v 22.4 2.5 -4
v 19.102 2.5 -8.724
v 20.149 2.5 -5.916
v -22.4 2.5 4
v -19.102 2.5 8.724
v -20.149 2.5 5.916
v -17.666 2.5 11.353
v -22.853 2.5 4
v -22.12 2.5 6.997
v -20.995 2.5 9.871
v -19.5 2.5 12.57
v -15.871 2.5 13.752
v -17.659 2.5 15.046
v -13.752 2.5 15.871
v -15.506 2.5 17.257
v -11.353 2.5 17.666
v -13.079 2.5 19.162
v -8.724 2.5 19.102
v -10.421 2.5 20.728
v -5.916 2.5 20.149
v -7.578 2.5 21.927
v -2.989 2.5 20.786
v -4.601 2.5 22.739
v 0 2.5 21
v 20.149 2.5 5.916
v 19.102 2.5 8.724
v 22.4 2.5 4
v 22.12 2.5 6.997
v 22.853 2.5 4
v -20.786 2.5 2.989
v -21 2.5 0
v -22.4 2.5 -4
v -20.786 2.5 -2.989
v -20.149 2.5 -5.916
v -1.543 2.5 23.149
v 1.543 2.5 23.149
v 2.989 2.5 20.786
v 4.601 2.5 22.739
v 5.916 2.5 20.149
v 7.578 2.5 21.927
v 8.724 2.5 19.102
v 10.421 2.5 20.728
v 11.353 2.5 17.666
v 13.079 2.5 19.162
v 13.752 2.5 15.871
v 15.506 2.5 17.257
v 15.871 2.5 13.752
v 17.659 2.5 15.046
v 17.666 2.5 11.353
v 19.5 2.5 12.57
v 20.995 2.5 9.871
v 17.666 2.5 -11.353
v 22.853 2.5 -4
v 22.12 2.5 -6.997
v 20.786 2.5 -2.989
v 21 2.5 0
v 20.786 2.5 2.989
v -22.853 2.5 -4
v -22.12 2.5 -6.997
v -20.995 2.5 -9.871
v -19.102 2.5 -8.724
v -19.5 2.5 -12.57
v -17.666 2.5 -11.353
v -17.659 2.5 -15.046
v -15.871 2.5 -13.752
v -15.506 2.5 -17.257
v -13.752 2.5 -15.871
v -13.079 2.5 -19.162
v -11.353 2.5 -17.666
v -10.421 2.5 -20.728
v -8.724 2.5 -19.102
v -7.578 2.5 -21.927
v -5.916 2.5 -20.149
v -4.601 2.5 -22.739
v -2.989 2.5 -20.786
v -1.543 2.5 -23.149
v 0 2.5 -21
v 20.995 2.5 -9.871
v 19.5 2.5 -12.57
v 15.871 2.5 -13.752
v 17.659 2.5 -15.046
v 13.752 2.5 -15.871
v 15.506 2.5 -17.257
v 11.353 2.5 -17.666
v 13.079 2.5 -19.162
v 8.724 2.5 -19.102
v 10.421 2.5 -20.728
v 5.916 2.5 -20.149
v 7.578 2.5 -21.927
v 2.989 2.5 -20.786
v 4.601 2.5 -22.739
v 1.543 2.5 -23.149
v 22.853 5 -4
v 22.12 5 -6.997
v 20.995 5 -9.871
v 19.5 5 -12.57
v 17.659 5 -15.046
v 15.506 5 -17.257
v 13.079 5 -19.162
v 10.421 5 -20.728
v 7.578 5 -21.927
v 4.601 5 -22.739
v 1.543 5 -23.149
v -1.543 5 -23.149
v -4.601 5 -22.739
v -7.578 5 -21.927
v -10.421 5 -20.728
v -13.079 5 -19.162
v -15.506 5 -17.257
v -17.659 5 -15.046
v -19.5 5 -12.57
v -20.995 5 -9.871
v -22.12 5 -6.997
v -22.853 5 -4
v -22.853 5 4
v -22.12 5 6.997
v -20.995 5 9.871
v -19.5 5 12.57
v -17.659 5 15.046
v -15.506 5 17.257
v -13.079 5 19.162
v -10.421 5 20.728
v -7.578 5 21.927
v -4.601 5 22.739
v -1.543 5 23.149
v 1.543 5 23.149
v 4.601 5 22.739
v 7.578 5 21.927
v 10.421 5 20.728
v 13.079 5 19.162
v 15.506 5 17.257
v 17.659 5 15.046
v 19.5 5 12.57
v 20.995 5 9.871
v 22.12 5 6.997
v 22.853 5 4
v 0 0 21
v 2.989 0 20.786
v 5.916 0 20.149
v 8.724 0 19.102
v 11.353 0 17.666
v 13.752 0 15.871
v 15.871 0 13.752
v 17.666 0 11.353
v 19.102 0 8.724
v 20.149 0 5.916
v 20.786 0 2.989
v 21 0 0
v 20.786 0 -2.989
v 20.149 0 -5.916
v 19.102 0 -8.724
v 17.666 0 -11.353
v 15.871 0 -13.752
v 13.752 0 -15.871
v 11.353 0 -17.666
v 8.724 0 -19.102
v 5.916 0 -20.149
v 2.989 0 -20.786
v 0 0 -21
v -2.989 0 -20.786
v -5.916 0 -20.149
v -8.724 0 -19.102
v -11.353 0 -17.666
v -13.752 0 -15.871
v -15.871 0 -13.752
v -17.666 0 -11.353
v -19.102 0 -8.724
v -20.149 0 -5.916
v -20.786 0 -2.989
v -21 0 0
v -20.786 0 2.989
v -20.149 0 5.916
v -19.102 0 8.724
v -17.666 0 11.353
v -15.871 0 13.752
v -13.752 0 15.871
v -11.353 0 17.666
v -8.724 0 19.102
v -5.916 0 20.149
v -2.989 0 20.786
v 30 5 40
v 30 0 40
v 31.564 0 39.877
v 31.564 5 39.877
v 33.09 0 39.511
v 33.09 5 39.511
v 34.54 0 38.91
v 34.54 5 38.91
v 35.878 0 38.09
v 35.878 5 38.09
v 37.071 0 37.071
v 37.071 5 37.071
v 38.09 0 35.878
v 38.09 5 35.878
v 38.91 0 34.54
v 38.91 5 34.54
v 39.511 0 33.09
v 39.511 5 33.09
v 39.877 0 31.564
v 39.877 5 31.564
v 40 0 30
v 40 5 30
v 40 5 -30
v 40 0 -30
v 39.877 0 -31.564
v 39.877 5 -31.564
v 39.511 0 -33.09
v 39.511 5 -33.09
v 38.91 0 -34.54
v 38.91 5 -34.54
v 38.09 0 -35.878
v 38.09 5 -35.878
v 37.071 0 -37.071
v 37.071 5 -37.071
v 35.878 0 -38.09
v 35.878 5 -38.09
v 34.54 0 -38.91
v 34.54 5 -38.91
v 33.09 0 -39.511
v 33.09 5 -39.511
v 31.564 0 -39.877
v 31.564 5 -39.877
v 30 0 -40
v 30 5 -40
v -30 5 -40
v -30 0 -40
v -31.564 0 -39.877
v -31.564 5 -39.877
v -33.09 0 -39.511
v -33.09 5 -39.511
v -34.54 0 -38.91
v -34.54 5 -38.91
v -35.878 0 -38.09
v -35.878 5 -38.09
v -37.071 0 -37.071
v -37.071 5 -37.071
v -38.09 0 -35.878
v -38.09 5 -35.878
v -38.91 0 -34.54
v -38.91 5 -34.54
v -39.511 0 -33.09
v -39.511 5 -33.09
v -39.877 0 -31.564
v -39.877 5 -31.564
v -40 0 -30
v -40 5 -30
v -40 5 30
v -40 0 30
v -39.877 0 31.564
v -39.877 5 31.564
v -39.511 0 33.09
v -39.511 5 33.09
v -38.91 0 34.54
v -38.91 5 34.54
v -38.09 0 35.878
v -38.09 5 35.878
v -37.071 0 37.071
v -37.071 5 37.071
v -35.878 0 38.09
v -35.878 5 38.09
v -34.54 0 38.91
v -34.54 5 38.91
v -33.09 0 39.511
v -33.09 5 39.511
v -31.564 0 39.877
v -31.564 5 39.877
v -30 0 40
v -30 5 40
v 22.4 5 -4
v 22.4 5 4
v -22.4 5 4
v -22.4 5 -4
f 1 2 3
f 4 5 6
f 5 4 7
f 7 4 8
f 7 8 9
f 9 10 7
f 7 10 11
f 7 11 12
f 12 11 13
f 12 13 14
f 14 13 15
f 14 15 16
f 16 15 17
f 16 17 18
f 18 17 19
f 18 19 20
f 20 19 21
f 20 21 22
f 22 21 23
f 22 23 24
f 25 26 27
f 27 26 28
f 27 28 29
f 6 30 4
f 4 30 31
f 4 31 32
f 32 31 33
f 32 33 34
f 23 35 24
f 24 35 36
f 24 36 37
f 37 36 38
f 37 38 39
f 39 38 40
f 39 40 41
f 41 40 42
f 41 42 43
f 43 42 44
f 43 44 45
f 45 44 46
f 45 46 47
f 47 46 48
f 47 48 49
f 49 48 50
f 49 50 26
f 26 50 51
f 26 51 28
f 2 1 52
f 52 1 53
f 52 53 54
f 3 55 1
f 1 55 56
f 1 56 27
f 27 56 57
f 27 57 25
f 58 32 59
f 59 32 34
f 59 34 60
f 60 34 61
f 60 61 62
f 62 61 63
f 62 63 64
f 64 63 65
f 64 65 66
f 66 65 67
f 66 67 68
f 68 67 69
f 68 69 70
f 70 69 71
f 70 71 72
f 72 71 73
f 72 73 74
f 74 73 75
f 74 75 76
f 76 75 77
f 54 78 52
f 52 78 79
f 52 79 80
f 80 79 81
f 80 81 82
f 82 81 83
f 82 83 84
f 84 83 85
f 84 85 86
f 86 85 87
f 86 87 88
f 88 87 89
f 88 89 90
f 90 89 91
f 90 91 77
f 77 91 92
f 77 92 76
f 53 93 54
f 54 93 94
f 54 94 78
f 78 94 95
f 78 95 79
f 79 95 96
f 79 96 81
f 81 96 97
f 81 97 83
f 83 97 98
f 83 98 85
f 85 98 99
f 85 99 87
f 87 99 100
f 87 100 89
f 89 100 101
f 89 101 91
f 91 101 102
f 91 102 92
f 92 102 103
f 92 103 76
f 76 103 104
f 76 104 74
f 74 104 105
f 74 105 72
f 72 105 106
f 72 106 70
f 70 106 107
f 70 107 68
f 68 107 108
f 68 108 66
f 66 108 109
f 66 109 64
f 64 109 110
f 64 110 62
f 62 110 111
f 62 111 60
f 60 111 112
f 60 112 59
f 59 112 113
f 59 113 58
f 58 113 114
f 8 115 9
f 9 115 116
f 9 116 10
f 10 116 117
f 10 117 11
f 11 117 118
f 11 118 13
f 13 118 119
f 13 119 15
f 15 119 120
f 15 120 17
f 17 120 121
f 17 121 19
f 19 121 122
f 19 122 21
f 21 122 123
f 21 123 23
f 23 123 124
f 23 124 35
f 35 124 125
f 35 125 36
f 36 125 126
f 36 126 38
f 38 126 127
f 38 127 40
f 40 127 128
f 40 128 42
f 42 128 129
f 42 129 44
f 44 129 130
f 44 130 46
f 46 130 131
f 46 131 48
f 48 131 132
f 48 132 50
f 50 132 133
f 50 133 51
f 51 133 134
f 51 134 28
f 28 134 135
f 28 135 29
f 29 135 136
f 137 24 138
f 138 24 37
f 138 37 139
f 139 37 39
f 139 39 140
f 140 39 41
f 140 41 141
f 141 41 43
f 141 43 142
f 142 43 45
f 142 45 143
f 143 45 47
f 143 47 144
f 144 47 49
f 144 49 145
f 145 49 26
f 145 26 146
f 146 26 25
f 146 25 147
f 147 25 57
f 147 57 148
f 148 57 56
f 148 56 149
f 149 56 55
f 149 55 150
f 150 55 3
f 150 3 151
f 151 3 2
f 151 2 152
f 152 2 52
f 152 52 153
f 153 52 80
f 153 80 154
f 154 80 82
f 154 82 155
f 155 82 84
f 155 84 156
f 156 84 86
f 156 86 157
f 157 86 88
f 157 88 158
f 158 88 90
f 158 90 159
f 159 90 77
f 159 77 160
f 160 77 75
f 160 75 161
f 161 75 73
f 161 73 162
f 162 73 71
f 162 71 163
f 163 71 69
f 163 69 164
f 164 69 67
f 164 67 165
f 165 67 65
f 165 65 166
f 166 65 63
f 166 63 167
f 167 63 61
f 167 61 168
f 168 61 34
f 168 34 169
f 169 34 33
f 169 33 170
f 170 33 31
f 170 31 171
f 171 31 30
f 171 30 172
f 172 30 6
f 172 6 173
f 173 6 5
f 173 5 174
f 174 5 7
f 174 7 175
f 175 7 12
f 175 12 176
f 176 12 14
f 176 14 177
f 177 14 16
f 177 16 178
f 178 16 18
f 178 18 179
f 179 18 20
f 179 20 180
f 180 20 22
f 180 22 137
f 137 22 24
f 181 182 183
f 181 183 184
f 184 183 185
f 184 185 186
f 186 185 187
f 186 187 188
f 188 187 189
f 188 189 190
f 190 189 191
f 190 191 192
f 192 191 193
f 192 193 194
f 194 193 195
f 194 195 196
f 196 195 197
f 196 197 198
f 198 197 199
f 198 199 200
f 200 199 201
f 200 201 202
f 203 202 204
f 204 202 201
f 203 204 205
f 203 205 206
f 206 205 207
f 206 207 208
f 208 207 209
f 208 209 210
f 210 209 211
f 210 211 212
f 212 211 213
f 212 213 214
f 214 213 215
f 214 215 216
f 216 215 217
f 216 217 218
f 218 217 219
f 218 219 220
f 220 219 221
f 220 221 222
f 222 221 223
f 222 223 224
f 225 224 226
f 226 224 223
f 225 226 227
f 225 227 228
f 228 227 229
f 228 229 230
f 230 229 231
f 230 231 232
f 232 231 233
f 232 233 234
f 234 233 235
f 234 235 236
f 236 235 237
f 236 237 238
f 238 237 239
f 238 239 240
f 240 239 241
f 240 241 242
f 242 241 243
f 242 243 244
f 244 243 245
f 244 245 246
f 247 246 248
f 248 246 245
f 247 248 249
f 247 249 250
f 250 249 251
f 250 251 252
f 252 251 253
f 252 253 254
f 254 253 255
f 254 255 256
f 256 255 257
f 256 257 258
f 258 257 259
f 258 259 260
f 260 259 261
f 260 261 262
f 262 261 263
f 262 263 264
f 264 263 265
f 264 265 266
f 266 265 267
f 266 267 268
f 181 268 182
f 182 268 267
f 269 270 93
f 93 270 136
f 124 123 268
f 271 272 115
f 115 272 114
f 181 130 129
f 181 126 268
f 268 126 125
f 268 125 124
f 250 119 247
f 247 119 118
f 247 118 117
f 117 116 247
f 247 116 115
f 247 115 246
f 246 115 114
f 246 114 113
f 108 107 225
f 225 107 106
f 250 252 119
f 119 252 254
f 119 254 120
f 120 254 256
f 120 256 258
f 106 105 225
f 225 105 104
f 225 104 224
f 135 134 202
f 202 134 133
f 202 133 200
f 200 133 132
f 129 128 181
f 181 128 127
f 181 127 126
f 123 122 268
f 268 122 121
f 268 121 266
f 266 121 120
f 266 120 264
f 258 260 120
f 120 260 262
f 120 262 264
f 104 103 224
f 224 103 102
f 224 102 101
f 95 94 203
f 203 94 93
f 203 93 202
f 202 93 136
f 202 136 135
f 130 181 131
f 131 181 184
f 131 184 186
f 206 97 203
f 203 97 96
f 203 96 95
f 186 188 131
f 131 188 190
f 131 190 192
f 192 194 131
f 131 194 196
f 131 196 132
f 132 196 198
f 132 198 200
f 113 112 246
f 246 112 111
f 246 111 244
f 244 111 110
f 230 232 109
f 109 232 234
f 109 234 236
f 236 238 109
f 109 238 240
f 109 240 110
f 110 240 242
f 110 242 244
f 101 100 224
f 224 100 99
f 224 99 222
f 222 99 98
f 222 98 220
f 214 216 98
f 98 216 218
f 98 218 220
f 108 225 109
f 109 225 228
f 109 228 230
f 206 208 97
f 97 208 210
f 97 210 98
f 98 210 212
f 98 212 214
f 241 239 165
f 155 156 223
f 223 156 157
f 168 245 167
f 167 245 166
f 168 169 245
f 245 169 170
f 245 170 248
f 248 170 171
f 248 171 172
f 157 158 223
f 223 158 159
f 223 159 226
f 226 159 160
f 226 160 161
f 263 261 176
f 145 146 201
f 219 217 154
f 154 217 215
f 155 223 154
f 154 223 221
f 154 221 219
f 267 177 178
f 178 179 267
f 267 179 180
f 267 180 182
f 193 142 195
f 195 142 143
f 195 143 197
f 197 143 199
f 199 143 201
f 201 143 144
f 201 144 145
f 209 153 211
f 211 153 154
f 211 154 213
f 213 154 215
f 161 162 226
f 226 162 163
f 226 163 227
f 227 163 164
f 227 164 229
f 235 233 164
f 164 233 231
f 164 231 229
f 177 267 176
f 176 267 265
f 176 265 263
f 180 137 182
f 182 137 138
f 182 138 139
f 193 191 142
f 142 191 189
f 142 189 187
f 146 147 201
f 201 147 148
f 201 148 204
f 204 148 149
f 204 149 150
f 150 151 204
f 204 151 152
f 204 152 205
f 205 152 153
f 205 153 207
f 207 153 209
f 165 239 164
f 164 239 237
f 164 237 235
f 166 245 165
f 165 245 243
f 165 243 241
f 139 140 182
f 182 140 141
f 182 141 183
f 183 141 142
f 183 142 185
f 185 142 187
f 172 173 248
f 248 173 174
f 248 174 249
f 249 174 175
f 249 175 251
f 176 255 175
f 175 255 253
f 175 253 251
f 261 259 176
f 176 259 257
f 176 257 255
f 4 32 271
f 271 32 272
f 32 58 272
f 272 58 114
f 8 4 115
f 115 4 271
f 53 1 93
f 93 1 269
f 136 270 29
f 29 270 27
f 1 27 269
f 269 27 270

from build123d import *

# Parameters (mm, degrees)
BOSS_EXTRUDE1_DEPTH = 5
SKETCH2_R           = 21
CUT_EXTRUDE1_DEPTH  = 8
SKETCH3_R           = 23.2
CUT_EXTRUDE2_DEPTH  = 2.5
BOSS_EXTRUDE2_START = 2.5
BOSS_EXTRUDE2_DEPTH = 2.5


with BuildPart() as part:
    # Sketch1 → Boss-Extrude1 (new body)
    with BuildSketch(Plane(origin=(0, 0, 0), x_dir=(1, 0, 0), z_dir=(0, 1, 0))):
        with BuildLine():
            Line((-30, -40), (30, -40))
            ThreePointArc((30, -40), (37.071067812, -37.071067812), (40, -30))
            Line((40, -30), (40, 30))
            ThreePointArc((40, 30), (37.071067812, 37.071067812), (30, 40))
            Line((30, 40), (-30, 40))
            ThreePointArc((-30, 40), (-37.071067812, 37.071067812), (-40, 30))
            Line((-40, 30), (-40, -30))
            ThreePointArc((-40, -30), (-37.071067812, -37.071067812), (-30, -40))
        make_face()
    extrude(amount=BOSS_EXTRUDE1_DEPTH)

    # Sketch2 → Cut-Extrude1 (cut)
    with BuildSketch(Plane(origin=(0, 5, 0), x_dir=(1, 0, 0), z_dir=(0, 1, 0))):
        with Locations(Location((0, 0, 0), (0, 0, 270))):
            Circle(SKETCH2_R)
    extrude(amount=-CUT_EXTRUDE1_DEPTH, mode=Mode.SUBTRACT)

    # Sketch3 → Cut-Extrude2 (cut)
    with BuildSketch(Plane(origin=(0, 5, 0), x_dir=(1, 0, 0), z_dir=(0, 1, 0))):
        with Locations(Location((0, 0, 0), (0, 0, 270))):
            Circle(SKETCH3_R)
    extrude(amount=-CUT_EXTRUDE2_DEPTH, mode=Mode.SUBTRACT)

    # Sketch4 → Boss-Extrude2 (add)
    with BuildSketch(Plane(origin=(0, 2.5, 0), x_dir=(1, 0, 0), z_dir=(0, 1, 0)).offset(BOSS_EXTRUDE2_START)):
        with BuildLine():
            Line((-22.4, 4), (-22.852570971, 4))
            ThreePointArc((-22.852570971, 4), (-23.112979541, 2.007530008), (-23.2, 0))
            ThreePointArc((-23.2, 0), (-23.112979541, -2.007530008), (-22.852570971, -4))
            Line((-22.852570971, -4), (-22.4, -4))
            Line((-22.4, -4), (-22.4, 4))
        make_face()
        Polygon((23.2, 0), (23.2, 4), (22.4, 4), (22.4, -4), (23.2, -4), align=None)
    extrude(amount=-BOSS_EXTRUDE2_DEPTH)


solid = part.part
